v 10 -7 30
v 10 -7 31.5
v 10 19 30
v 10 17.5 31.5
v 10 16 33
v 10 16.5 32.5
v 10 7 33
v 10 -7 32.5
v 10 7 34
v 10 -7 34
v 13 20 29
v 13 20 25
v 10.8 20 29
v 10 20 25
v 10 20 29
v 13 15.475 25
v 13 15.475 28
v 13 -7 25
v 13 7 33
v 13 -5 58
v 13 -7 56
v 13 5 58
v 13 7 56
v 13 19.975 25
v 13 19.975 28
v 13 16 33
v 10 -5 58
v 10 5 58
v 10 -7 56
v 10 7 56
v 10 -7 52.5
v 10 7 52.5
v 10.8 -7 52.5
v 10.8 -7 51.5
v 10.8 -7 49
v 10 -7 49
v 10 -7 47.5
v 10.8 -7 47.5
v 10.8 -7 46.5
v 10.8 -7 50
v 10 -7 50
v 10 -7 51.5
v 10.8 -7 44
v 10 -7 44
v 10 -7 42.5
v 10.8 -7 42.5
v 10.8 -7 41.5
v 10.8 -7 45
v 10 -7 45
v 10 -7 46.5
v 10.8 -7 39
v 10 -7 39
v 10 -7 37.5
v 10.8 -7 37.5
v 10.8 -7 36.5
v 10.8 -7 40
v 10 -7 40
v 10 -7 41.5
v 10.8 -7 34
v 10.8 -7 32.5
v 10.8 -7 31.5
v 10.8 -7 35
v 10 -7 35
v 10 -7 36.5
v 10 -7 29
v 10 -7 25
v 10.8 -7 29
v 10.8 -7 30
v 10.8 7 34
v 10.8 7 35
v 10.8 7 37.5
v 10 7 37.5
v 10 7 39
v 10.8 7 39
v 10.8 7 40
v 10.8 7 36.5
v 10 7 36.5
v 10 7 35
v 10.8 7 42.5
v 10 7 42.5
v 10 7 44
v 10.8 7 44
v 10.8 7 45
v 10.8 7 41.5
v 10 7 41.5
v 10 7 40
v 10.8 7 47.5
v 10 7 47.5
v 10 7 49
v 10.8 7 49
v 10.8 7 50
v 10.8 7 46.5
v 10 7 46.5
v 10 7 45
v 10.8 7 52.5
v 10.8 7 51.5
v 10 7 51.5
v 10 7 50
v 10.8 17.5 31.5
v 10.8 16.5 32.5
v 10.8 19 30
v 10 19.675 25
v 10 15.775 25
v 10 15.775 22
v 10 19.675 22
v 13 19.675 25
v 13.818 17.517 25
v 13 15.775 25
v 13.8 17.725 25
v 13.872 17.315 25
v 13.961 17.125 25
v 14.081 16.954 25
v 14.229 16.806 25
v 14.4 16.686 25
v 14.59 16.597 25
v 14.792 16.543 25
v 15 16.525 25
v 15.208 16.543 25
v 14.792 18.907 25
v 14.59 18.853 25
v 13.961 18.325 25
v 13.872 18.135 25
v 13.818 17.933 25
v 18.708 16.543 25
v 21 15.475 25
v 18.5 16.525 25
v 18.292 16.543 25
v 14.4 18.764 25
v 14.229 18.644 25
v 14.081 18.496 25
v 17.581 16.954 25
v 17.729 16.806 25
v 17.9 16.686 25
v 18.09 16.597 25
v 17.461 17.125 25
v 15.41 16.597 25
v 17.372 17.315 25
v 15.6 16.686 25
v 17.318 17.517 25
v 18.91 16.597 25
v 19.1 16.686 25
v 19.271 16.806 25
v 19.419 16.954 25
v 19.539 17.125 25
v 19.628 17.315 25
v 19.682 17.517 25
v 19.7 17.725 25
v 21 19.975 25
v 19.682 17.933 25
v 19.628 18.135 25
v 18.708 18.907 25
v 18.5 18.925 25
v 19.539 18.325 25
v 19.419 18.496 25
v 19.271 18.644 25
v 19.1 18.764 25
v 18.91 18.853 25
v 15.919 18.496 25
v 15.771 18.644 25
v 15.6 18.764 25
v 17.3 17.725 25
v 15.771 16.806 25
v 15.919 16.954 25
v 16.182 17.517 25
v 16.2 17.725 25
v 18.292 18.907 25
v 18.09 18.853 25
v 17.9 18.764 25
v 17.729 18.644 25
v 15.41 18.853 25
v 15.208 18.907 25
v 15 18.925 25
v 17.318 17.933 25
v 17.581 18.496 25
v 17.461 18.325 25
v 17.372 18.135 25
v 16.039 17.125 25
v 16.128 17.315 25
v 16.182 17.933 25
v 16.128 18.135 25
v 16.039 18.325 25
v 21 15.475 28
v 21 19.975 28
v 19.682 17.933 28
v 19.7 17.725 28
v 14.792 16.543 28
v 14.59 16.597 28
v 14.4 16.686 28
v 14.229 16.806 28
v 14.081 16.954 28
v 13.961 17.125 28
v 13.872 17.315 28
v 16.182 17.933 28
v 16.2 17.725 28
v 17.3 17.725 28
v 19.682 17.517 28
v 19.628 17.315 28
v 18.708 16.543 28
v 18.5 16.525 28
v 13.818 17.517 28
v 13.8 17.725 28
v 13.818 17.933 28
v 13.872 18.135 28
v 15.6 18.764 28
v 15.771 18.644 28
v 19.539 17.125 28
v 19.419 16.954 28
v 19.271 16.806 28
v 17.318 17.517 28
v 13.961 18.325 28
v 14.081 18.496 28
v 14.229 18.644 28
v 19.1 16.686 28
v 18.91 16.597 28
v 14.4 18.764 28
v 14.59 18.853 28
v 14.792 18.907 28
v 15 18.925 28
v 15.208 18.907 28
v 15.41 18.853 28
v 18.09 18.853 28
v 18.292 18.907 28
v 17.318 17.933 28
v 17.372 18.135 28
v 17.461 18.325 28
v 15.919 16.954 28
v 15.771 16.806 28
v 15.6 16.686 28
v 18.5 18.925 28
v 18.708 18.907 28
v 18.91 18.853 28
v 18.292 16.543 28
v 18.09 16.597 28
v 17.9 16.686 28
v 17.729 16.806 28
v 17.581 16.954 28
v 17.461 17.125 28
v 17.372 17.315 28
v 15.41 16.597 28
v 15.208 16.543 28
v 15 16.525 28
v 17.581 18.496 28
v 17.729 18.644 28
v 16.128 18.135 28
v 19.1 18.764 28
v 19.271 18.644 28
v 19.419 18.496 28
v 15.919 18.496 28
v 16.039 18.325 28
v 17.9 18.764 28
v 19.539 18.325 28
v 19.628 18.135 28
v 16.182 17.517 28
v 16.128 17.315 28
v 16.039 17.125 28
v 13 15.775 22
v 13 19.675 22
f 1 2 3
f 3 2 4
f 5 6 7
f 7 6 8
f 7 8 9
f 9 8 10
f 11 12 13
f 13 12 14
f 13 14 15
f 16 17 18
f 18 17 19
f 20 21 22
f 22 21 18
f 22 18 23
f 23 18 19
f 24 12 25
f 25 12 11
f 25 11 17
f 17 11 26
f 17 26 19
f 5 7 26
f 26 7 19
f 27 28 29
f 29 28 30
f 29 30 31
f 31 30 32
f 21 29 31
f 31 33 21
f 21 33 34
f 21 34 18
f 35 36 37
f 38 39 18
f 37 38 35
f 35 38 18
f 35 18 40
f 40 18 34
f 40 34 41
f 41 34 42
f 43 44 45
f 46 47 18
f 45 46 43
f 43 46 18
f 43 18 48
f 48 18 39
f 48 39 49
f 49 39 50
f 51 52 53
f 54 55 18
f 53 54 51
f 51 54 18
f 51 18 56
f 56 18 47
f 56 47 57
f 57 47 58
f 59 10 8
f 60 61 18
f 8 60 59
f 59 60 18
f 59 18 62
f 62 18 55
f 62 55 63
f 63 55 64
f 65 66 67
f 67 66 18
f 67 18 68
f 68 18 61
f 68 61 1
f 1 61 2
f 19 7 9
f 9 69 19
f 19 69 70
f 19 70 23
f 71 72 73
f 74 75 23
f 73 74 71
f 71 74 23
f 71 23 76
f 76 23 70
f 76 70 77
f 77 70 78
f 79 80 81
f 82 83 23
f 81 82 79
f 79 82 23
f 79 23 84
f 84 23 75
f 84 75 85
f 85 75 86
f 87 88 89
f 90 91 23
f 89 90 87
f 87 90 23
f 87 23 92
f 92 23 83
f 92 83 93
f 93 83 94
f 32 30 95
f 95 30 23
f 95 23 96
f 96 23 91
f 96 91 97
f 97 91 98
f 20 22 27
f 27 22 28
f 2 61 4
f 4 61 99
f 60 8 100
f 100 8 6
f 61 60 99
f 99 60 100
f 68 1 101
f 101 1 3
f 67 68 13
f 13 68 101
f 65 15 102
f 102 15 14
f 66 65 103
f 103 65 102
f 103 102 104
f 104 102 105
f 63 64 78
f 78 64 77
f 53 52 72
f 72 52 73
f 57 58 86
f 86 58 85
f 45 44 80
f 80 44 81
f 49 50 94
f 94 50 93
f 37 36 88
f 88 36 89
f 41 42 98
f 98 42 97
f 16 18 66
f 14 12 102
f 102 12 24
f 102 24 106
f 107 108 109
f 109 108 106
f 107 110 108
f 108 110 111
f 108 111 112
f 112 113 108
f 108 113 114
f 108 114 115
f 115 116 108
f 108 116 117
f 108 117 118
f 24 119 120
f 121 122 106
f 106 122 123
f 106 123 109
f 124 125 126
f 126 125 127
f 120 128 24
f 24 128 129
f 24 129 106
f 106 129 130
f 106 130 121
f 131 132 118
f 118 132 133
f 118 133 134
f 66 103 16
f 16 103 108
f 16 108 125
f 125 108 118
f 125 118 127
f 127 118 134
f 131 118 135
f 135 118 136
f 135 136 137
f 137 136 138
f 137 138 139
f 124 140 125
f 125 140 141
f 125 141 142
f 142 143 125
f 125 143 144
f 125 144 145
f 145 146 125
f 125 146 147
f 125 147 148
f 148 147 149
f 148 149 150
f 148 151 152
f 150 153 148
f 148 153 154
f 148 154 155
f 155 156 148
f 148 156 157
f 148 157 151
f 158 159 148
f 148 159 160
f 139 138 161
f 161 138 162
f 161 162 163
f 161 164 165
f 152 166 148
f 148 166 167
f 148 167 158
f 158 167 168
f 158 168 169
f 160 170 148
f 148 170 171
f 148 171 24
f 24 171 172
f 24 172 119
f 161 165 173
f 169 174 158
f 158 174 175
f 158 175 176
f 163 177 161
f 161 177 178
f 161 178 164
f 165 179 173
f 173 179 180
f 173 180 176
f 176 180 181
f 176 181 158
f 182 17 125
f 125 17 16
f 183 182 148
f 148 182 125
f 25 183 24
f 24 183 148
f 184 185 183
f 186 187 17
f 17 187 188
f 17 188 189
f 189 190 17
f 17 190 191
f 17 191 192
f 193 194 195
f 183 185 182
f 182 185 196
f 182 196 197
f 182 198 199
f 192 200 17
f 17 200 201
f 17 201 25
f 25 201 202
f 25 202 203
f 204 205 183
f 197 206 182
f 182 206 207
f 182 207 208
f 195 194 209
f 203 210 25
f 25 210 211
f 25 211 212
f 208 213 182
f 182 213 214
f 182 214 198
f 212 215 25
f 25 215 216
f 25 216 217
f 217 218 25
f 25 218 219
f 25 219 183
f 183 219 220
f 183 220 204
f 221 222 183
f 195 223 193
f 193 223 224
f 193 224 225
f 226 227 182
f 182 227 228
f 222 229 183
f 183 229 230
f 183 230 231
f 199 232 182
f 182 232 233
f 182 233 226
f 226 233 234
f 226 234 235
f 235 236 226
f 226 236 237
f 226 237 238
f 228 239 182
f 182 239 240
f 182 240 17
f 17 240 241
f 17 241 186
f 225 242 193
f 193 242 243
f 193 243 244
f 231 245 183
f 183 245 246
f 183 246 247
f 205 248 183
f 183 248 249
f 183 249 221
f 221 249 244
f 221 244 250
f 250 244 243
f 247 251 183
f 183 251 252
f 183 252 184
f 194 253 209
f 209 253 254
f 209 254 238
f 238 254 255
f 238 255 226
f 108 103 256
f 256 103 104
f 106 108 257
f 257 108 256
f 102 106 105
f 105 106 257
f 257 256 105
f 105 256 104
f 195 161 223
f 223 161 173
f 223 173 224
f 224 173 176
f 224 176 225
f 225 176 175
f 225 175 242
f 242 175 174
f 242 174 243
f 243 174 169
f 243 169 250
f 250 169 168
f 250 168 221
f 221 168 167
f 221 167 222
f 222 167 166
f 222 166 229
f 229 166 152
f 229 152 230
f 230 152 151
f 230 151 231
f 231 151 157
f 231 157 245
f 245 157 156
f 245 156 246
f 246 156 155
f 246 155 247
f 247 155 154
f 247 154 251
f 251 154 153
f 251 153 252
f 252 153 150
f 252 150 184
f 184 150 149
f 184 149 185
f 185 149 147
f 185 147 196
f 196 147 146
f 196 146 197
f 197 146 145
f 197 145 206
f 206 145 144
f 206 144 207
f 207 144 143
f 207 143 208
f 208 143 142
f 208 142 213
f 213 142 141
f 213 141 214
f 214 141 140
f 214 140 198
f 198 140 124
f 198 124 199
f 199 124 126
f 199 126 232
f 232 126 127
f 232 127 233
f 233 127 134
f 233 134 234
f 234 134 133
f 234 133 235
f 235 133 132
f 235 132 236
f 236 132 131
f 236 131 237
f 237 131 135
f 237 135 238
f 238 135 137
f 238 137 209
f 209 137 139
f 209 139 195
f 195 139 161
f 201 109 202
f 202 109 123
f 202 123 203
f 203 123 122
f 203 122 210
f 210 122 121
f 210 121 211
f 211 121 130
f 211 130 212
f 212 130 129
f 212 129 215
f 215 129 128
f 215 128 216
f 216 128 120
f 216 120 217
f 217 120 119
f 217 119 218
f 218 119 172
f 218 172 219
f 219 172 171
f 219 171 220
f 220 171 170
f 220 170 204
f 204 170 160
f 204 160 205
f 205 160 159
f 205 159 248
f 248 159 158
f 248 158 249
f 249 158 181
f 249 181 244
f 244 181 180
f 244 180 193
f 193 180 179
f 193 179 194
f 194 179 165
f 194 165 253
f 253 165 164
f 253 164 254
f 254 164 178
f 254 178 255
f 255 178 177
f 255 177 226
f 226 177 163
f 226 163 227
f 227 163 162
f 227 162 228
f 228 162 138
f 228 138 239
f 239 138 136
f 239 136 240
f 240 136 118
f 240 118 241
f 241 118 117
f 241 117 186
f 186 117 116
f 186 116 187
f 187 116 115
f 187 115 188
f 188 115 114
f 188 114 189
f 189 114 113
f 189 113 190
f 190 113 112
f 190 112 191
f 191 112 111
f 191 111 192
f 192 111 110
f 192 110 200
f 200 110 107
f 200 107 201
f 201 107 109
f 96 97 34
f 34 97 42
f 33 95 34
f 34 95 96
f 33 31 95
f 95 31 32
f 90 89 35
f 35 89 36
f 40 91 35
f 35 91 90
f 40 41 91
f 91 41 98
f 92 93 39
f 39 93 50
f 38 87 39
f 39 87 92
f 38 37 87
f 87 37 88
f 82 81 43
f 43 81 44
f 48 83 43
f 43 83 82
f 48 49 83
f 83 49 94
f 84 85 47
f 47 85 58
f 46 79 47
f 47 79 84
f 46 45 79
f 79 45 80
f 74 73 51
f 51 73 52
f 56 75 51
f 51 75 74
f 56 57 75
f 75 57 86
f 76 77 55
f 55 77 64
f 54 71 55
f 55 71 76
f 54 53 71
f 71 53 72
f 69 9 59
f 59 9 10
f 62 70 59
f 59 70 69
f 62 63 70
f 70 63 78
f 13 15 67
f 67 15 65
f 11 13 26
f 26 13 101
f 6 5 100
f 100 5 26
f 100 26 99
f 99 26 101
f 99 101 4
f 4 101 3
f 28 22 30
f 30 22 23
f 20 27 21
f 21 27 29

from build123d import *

# Parameters (mm, degrees)
BOSS_EXTRUDE1_START     = 25
SKETCH1_W               = 3
SKETCH1_H               = 27
BOSS_EXTRUDE1_DEPTH     = 8
BOSS_EXTRUDE2_START     = 32.5
SKETCH2_W               = 3
SKETCH2_H               = 14
BOSS_EXTRUDE2_DEPTH     = 25.5
BOSS_EXTRUDE3_START     = 25
SKETCH3_W               = 8
SKETCH3_H               = 4.5
BOSS_EXTRUDE3_DEPTH     = 3
BOSS_EXTRUDE4_START     = 22
SKETCH4_W               = 3
SKETCH4_H               = 3.9
BOSS_EXTRUDE4_DEPTH     = 3
CUT_EXTRUDE1_DEPTH      = 65.845971347
CUT_EXTRUDE1_DEPTH_BACK = 65.845971347
SKETCH5_R               = 1.2
CUT_EXTRUDE2_DEPTH      = 65.845971347
CUT_EXTRUDE2_DEPTH_BACK = 65.845971347
SKETCH6_W               = 1.8
SKETCH6_H               = 1
CUT_EXTRUDE3_DEPTH      = 65.845971347
CUT_EXTRUDE3_DEPTH_BACK = 65.845971347


with BuildPart() as part:
    # Sketch1 → Boss-Extrude1 (new body)
    with BuildSketch(Plane.XY.offset(BOSS_EXTRUDE1_START)):
        with Locations((11.5, 6.5)):
            Rectangle(SKETCH1_W, SKETCH1_H)
    extrude(amount=BOSS_EXTRUDE1_DEPTH)

    # Sketch2 → Boss-Extrude2 (add)
    with BuildSketch(Plane.XY.offset(BOSS_EXTRUDE2_START)):
        with Locations((11.5, 0)):
            Rectangle(SKETCH2_W, SKETCH2_H)
    extrude(amount=BOSS_EXTRUDE2_DEPTH)

    # Sketch3 → Boss-Extrude3 (add)
    with BuildSketch(Plane.XY.offset(BOSS_EXTRUDE3_START)):
        with Locations((17, 17.725)):
            Rectangle(SKETCH3_W, SKETCH3_H)
    extrude(amount=BOSS_EXTRUDE3_DEPTH)

    # Sketch4 → Boss-Extrude4 (add)
    with BuildSketch(Plane.XY.offset(BOSS_EXTRUDE4_START)):
        with Locations((11.5, 17.725)):
            Rectangle(SKETCH4_W, SKETCH4_H)
    extrude(amount=BOSS_EXTRUDE4_DEPTH)

    # Sketch5 → Cut-Extrude1 (cut, two sides: drawn at the far end of the back side and taken through both)
    with BuildSketch(Plane.XY.offset(-CUT_EXTRUDE1_DEPTH_BACK)):
        with Locations((15, 17.725)):
            Circle(SKETCH5_R)
        with Locations((18.5, 17.725)):
            Circle(SKETCH5_R)
    extrude(amount=CUT_EXTRUDE1_DEPTH + CUT_EXTRUDE1_DEPTH_BACK, mode=Mode.SUBTRACT)

    # Sketch6 → Cut-Extrude2 (cut, two sides: drawn at the far end of the back side and taken through both)
    with BuildSketch(Plane(origin=(0, 0, 0), x_dir=(1, 0, 0), z_dir=(0, 1, 0)).offset(-CUT_EXTRUDE2_DEPTH_BACK)):
        with Locations((9.9, -29.5)):
            Rectangle(SKETCH6_W, SKETCH6_H)
        with Locations((9.9, -32)):
            Rectangle(SKETCH6_W, SKETCH6_H)
        with Locations((9.9, -34.5)):
            Rectangle(SKETCH6_W, SKETCH6_H)
        with Locations((9.9, -37)):
            Rectangle(SKETCH6_W, SKETCH6_H)
        with Locations((9.9, -39.5)):
            Rectangle(SKETCH6_W, SKETCH6_H)
        with Locations((9.9, -42)):
            Rectangle(SKETCH6_W, SKETCH6_H)
        with Locations((9.9, -44.5)):
            Rectangle(SKETCH6_W, SKETCH6_H)
        with Locations((9.9, -47)):
            Rectangle(SKETCH6_W, SKETCH6_H)
        with Locations((9.9, -49.5)):
            Rectangle(SKETCH6_W, SKETCH6_H)
        with Locations((9.9, -52)):
            Rectangle(SKETCH6_W, SKETCH6_H)
    extrude(amount=CUT_EXTRUDE2_DEPTH + CUT_EXTRUDE2_DEPTH_BACK, mode=Mode.SUBTRACT)

    # Sketch7 → Cut-Extrude3 (cut, two sides: drawn at the far end of the back side and taken through both)
    with BuildSketch(Plane(origin=(0, 0, 0), x_dir=(0, 0, -1), z_dir=(1, 0, 0)).offset(-CUT_EXTRUDE3_DEPTH_BACK)):
        Polygon((-55.3, -7.7), (-59, -7.7), (-59, -4), align=None)
        Polygon((-55.3, 7.7), (-59, 4), (-59, 7.7), align=None)
        Polygon((-28, 21), (-34, 21), (-34, 15), align=None)
    extrude(amount=CUT_EXTRUDE3_DEPTH + CUT_EXTRUDE3_DEPTH_BACK, mode=Mode.SUBTRACT)


solid = part.part
